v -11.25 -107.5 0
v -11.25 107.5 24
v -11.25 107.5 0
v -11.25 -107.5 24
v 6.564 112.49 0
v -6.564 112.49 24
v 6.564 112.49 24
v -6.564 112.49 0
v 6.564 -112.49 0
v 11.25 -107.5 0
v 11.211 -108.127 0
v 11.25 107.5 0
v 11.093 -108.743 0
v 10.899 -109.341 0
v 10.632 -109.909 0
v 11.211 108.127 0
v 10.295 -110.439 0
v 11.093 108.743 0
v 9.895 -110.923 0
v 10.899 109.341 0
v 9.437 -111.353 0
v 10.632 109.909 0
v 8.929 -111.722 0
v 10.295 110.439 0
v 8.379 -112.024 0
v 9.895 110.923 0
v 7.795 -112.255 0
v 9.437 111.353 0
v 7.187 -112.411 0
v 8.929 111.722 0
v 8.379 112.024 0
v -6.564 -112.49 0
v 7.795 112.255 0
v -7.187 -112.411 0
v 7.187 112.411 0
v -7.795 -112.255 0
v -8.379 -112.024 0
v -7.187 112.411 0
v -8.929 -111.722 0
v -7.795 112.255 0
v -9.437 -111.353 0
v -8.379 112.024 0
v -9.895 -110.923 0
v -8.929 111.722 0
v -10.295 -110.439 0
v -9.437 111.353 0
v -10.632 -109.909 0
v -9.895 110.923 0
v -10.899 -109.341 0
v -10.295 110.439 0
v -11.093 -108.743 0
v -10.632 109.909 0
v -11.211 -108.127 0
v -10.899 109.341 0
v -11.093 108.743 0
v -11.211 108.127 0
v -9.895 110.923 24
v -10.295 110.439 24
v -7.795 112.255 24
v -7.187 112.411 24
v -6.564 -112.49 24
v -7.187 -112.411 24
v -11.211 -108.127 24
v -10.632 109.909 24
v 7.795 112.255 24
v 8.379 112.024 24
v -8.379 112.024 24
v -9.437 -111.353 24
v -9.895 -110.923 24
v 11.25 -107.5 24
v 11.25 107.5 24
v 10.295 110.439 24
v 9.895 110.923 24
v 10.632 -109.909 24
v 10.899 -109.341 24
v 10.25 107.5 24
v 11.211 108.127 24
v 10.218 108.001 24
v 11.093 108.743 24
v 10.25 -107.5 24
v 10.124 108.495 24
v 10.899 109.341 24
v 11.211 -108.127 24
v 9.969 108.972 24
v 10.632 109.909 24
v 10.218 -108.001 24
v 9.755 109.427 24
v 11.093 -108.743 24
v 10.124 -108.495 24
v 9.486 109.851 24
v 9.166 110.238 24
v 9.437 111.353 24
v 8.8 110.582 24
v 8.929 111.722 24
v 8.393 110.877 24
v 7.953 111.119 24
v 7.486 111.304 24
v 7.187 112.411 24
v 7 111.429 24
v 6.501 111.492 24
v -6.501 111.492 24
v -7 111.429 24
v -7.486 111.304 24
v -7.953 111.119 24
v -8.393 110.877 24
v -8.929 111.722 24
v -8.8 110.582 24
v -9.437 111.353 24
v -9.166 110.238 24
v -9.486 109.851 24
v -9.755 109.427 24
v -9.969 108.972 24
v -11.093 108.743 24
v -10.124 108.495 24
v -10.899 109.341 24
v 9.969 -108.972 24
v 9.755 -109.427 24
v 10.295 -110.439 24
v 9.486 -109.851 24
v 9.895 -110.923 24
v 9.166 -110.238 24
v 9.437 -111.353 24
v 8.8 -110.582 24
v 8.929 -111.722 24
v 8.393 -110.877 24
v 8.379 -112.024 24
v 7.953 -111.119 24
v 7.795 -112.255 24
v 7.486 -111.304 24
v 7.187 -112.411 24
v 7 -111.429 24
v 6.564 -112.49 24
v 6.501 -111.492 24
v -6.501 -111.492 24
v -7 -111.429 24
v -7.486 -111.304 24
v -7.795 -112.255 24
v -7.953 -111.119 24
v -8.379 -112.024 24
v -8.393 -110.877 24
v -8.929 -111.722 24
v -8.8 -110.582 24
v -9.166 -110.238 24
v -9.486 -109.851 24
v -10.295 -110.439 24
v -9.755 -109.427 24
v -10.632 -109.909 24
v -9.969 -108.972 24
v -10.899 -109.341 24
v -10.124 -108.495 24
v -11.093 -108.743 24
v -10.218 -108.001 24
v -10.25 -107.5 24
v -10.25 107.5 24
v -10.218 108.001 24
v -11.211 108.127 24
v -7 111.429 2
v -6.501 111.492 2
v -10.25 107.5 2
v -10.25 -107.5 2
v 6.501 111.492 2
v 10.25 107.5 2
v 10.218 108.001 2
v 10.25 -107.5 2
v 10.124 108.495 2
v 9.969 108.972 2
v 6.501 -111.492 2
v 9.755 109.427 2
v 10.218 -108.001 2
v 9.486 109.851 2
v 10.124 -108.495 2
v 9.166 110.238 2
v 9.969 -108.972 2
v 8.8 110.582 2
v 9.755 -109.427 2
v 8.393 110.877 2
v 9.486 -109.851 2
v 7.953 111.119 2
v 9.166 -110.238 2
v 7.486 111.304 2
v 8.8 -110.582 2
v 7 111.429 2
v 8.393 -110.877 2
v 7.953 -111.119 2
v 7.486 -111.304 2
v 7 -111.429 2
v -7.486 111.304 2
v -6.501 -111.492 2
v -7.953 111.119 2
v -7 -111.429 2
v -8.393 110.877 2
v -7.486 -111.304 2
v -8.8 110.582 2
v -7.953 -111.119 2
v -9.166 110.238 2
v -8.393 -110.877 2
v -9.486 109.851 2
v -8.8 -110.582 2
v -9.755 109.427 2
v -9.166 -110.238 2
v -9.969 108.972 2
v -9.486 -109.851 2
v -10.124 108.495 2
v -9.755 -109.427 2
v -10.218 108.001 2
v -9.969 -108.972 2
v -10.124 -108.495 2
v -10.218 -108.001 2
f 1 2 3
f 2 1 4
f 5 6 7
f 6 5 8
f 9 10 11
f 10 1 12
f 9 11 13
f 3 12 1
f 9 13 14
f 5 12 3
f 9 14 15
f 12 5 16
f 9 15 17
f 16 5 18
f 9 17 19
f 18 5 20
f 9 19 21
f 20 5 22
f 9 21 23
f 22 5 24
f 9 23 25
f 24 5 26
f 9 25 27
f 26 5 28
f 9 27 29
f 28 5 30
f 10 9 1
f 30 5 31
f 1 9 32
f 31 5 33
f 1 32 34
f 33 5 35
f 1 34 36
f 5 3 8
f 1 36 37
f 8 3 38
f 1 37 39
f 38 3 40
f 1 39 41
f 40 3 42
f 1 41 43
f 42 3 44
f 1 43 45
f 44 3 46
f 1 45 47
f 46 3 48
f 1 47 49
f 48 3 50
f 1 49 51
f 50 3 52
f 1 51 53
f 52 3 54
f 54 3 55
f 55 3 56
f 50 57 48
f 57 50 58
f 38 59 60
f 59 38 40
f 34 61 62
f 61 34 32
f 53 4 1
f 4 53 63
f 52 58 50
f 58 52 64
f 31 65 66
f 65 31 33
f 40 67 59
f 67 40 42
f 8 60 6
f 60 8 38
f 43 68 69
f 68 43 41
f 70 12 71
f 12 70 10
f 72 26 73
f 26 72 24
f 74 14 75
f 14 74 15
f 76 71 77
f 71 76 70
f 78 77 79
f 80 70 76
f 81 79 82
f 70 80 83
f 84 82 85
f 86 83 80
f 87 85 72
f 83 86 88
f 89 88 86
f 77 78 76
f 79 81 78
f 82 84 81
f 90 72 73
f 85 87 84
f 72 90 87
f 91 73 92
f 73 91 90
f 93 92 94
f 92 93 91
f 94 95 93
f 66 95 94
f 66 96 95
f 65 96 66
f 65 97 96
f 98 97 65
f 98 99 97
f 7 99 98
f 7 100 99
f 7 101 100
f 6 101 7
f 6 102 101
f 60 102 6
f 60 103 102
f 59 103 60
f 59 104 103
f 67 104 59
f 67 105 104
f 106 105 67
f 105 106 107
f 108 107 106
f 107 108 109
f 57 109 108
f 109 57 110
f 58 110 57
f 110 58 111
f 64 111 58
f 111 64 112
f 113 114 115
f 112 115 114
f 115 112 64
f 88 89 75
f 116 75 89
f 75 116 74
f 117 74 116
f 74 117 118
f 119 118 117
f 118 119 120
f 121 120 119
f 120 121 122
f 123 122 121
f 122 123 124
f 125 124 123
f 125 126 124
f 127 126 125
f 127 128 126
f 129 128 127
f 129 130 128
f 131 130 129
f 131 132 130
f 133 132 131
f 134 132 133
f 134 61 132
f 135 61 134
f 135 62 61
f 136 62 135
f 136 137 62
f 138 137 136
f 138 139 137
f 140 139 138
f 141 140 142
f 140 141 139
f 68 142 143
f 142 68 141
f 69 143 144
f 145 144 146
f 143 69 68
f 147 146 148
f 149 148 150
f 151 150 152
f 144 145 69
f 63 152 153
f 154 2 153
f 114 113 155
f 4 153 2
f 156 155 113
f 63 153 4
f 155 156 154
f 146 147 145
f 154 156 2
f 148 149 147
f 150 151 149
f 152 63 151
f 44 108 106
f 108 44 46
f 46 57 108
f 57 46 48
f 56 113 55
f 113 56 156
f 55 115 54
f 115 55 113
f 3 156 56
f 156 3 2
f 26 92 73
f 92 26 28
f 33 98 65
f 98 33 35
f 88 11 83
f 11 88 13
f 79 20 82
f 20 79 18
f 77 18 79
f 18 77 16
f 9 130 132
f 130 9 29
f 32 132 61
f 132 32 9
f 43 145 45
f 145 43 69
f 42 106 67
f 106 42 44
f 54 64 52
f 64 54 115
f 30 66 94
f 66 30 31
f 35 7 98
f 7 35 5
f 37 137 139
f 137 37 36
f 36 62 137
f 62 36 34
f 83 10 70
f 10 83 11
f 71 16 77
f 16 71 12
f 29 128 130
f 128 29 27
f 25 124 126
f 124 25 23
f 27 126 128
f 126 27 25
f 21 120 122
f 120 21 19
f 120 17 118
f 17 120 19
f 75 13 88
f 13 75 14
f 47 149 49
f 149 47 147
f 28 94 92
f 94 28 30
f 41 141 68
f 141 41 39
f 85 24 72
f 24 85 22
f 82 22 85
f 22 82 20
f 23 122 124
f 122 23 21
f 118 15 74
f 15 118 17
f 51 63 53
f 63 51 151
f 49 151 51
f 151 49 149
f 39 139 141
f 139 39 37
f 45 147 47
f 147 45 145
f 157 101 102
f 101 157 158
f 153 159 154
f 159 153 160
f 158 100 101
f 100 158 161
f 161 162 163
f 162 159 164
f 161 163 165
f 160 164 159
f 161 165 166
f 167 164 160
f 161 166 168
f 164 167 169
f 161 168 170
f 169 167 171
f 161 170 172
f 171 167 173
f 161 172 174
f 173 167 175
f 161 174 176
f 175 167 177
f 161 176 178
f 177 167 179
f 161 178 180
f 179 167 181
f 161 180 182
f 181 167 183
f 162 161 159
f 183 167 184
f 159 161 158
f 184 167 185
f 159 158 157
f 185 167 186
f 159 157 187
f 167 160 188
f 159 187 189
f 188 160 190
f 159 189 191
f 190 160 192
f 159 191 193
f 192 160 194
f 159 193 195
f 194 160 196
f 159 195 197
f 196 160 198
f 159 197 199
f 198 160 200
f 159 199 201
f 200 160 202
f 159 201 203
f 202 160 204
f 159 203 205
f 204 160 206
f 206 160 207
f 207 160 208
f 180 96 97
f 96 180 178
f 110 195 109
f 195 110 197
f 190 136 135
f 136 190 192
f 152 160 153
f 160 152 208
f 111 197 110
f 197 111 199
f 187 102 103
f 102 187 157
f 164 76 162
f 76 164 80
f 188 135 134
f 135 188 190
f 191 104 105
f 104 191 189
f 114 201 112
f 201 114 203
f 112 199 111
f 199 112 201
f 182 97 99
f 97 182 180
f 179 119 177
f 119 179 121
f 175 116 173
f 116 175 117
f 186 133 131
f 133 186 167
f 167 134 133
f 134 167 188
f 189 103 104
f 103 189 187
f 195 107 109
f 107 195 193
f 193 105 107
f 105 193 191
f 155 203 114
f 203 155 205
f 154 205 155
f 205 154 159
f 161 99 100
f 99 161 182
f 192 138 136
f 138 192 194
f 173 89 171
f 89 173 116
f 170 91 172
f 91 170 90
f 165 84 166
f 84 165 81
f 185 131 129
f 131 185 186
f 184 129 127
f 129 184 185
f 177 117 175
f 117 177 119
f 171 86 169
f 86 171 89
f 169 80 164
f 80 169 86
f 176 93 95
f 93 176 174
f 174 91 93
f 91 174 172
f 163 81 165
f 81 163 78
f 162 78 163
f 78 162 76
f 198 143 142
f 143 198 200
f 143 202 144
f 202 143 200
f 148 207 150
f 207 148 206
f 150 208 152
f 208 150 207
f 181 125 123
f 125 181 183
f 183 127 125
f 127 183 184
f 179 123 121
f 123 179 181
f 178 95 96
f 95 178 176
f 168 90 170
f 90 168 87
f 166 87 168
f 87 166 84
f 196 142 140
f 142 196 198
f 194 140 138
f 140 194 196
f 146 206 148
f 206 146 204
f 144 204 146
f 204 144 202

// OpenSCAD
$fn = 50;


difference() {
	union() {
		hull() {
			translate(v = [-6.2500000000, 107.5000000000, 0]) {
				cylinder(h = 24, r = 5);
			}
			translate(v = [6.2500000000, 107.5000000000, 0]) {
				cylinder(h = 24, r = 5);
			}
			translate(v = [-6.2500000000, -107.5000000000, 0]) {
				cylinder(h = 24, r = 5);
			}
			translate(v = [6.2500000000, -107.5000000000, 0]) {
				cylinder(h = 24, r = 5);
			}
		}
	}
	union() {
		translate(v = [0, 0, 2]) {
			hull() {
				translate(v = [-6.2500000000, 107.5000000000, 0]) {
					cylinder(h = 22, r = 4);
				}
				translate(v = [6.2500000000, 107.5000000000, 0]) {
					cylinder(h = 22, r = 4);
				}
				translate(v = [-6.2500000000, -107.5000000000, 0]) {
					cylinder(h = 22, r = 4);
				}
				translate(v = [6.2500000000, -107.5000000000, 0]) {
					cylinder(h = 22, r = 4);
				}
			}
		}
	}
}
